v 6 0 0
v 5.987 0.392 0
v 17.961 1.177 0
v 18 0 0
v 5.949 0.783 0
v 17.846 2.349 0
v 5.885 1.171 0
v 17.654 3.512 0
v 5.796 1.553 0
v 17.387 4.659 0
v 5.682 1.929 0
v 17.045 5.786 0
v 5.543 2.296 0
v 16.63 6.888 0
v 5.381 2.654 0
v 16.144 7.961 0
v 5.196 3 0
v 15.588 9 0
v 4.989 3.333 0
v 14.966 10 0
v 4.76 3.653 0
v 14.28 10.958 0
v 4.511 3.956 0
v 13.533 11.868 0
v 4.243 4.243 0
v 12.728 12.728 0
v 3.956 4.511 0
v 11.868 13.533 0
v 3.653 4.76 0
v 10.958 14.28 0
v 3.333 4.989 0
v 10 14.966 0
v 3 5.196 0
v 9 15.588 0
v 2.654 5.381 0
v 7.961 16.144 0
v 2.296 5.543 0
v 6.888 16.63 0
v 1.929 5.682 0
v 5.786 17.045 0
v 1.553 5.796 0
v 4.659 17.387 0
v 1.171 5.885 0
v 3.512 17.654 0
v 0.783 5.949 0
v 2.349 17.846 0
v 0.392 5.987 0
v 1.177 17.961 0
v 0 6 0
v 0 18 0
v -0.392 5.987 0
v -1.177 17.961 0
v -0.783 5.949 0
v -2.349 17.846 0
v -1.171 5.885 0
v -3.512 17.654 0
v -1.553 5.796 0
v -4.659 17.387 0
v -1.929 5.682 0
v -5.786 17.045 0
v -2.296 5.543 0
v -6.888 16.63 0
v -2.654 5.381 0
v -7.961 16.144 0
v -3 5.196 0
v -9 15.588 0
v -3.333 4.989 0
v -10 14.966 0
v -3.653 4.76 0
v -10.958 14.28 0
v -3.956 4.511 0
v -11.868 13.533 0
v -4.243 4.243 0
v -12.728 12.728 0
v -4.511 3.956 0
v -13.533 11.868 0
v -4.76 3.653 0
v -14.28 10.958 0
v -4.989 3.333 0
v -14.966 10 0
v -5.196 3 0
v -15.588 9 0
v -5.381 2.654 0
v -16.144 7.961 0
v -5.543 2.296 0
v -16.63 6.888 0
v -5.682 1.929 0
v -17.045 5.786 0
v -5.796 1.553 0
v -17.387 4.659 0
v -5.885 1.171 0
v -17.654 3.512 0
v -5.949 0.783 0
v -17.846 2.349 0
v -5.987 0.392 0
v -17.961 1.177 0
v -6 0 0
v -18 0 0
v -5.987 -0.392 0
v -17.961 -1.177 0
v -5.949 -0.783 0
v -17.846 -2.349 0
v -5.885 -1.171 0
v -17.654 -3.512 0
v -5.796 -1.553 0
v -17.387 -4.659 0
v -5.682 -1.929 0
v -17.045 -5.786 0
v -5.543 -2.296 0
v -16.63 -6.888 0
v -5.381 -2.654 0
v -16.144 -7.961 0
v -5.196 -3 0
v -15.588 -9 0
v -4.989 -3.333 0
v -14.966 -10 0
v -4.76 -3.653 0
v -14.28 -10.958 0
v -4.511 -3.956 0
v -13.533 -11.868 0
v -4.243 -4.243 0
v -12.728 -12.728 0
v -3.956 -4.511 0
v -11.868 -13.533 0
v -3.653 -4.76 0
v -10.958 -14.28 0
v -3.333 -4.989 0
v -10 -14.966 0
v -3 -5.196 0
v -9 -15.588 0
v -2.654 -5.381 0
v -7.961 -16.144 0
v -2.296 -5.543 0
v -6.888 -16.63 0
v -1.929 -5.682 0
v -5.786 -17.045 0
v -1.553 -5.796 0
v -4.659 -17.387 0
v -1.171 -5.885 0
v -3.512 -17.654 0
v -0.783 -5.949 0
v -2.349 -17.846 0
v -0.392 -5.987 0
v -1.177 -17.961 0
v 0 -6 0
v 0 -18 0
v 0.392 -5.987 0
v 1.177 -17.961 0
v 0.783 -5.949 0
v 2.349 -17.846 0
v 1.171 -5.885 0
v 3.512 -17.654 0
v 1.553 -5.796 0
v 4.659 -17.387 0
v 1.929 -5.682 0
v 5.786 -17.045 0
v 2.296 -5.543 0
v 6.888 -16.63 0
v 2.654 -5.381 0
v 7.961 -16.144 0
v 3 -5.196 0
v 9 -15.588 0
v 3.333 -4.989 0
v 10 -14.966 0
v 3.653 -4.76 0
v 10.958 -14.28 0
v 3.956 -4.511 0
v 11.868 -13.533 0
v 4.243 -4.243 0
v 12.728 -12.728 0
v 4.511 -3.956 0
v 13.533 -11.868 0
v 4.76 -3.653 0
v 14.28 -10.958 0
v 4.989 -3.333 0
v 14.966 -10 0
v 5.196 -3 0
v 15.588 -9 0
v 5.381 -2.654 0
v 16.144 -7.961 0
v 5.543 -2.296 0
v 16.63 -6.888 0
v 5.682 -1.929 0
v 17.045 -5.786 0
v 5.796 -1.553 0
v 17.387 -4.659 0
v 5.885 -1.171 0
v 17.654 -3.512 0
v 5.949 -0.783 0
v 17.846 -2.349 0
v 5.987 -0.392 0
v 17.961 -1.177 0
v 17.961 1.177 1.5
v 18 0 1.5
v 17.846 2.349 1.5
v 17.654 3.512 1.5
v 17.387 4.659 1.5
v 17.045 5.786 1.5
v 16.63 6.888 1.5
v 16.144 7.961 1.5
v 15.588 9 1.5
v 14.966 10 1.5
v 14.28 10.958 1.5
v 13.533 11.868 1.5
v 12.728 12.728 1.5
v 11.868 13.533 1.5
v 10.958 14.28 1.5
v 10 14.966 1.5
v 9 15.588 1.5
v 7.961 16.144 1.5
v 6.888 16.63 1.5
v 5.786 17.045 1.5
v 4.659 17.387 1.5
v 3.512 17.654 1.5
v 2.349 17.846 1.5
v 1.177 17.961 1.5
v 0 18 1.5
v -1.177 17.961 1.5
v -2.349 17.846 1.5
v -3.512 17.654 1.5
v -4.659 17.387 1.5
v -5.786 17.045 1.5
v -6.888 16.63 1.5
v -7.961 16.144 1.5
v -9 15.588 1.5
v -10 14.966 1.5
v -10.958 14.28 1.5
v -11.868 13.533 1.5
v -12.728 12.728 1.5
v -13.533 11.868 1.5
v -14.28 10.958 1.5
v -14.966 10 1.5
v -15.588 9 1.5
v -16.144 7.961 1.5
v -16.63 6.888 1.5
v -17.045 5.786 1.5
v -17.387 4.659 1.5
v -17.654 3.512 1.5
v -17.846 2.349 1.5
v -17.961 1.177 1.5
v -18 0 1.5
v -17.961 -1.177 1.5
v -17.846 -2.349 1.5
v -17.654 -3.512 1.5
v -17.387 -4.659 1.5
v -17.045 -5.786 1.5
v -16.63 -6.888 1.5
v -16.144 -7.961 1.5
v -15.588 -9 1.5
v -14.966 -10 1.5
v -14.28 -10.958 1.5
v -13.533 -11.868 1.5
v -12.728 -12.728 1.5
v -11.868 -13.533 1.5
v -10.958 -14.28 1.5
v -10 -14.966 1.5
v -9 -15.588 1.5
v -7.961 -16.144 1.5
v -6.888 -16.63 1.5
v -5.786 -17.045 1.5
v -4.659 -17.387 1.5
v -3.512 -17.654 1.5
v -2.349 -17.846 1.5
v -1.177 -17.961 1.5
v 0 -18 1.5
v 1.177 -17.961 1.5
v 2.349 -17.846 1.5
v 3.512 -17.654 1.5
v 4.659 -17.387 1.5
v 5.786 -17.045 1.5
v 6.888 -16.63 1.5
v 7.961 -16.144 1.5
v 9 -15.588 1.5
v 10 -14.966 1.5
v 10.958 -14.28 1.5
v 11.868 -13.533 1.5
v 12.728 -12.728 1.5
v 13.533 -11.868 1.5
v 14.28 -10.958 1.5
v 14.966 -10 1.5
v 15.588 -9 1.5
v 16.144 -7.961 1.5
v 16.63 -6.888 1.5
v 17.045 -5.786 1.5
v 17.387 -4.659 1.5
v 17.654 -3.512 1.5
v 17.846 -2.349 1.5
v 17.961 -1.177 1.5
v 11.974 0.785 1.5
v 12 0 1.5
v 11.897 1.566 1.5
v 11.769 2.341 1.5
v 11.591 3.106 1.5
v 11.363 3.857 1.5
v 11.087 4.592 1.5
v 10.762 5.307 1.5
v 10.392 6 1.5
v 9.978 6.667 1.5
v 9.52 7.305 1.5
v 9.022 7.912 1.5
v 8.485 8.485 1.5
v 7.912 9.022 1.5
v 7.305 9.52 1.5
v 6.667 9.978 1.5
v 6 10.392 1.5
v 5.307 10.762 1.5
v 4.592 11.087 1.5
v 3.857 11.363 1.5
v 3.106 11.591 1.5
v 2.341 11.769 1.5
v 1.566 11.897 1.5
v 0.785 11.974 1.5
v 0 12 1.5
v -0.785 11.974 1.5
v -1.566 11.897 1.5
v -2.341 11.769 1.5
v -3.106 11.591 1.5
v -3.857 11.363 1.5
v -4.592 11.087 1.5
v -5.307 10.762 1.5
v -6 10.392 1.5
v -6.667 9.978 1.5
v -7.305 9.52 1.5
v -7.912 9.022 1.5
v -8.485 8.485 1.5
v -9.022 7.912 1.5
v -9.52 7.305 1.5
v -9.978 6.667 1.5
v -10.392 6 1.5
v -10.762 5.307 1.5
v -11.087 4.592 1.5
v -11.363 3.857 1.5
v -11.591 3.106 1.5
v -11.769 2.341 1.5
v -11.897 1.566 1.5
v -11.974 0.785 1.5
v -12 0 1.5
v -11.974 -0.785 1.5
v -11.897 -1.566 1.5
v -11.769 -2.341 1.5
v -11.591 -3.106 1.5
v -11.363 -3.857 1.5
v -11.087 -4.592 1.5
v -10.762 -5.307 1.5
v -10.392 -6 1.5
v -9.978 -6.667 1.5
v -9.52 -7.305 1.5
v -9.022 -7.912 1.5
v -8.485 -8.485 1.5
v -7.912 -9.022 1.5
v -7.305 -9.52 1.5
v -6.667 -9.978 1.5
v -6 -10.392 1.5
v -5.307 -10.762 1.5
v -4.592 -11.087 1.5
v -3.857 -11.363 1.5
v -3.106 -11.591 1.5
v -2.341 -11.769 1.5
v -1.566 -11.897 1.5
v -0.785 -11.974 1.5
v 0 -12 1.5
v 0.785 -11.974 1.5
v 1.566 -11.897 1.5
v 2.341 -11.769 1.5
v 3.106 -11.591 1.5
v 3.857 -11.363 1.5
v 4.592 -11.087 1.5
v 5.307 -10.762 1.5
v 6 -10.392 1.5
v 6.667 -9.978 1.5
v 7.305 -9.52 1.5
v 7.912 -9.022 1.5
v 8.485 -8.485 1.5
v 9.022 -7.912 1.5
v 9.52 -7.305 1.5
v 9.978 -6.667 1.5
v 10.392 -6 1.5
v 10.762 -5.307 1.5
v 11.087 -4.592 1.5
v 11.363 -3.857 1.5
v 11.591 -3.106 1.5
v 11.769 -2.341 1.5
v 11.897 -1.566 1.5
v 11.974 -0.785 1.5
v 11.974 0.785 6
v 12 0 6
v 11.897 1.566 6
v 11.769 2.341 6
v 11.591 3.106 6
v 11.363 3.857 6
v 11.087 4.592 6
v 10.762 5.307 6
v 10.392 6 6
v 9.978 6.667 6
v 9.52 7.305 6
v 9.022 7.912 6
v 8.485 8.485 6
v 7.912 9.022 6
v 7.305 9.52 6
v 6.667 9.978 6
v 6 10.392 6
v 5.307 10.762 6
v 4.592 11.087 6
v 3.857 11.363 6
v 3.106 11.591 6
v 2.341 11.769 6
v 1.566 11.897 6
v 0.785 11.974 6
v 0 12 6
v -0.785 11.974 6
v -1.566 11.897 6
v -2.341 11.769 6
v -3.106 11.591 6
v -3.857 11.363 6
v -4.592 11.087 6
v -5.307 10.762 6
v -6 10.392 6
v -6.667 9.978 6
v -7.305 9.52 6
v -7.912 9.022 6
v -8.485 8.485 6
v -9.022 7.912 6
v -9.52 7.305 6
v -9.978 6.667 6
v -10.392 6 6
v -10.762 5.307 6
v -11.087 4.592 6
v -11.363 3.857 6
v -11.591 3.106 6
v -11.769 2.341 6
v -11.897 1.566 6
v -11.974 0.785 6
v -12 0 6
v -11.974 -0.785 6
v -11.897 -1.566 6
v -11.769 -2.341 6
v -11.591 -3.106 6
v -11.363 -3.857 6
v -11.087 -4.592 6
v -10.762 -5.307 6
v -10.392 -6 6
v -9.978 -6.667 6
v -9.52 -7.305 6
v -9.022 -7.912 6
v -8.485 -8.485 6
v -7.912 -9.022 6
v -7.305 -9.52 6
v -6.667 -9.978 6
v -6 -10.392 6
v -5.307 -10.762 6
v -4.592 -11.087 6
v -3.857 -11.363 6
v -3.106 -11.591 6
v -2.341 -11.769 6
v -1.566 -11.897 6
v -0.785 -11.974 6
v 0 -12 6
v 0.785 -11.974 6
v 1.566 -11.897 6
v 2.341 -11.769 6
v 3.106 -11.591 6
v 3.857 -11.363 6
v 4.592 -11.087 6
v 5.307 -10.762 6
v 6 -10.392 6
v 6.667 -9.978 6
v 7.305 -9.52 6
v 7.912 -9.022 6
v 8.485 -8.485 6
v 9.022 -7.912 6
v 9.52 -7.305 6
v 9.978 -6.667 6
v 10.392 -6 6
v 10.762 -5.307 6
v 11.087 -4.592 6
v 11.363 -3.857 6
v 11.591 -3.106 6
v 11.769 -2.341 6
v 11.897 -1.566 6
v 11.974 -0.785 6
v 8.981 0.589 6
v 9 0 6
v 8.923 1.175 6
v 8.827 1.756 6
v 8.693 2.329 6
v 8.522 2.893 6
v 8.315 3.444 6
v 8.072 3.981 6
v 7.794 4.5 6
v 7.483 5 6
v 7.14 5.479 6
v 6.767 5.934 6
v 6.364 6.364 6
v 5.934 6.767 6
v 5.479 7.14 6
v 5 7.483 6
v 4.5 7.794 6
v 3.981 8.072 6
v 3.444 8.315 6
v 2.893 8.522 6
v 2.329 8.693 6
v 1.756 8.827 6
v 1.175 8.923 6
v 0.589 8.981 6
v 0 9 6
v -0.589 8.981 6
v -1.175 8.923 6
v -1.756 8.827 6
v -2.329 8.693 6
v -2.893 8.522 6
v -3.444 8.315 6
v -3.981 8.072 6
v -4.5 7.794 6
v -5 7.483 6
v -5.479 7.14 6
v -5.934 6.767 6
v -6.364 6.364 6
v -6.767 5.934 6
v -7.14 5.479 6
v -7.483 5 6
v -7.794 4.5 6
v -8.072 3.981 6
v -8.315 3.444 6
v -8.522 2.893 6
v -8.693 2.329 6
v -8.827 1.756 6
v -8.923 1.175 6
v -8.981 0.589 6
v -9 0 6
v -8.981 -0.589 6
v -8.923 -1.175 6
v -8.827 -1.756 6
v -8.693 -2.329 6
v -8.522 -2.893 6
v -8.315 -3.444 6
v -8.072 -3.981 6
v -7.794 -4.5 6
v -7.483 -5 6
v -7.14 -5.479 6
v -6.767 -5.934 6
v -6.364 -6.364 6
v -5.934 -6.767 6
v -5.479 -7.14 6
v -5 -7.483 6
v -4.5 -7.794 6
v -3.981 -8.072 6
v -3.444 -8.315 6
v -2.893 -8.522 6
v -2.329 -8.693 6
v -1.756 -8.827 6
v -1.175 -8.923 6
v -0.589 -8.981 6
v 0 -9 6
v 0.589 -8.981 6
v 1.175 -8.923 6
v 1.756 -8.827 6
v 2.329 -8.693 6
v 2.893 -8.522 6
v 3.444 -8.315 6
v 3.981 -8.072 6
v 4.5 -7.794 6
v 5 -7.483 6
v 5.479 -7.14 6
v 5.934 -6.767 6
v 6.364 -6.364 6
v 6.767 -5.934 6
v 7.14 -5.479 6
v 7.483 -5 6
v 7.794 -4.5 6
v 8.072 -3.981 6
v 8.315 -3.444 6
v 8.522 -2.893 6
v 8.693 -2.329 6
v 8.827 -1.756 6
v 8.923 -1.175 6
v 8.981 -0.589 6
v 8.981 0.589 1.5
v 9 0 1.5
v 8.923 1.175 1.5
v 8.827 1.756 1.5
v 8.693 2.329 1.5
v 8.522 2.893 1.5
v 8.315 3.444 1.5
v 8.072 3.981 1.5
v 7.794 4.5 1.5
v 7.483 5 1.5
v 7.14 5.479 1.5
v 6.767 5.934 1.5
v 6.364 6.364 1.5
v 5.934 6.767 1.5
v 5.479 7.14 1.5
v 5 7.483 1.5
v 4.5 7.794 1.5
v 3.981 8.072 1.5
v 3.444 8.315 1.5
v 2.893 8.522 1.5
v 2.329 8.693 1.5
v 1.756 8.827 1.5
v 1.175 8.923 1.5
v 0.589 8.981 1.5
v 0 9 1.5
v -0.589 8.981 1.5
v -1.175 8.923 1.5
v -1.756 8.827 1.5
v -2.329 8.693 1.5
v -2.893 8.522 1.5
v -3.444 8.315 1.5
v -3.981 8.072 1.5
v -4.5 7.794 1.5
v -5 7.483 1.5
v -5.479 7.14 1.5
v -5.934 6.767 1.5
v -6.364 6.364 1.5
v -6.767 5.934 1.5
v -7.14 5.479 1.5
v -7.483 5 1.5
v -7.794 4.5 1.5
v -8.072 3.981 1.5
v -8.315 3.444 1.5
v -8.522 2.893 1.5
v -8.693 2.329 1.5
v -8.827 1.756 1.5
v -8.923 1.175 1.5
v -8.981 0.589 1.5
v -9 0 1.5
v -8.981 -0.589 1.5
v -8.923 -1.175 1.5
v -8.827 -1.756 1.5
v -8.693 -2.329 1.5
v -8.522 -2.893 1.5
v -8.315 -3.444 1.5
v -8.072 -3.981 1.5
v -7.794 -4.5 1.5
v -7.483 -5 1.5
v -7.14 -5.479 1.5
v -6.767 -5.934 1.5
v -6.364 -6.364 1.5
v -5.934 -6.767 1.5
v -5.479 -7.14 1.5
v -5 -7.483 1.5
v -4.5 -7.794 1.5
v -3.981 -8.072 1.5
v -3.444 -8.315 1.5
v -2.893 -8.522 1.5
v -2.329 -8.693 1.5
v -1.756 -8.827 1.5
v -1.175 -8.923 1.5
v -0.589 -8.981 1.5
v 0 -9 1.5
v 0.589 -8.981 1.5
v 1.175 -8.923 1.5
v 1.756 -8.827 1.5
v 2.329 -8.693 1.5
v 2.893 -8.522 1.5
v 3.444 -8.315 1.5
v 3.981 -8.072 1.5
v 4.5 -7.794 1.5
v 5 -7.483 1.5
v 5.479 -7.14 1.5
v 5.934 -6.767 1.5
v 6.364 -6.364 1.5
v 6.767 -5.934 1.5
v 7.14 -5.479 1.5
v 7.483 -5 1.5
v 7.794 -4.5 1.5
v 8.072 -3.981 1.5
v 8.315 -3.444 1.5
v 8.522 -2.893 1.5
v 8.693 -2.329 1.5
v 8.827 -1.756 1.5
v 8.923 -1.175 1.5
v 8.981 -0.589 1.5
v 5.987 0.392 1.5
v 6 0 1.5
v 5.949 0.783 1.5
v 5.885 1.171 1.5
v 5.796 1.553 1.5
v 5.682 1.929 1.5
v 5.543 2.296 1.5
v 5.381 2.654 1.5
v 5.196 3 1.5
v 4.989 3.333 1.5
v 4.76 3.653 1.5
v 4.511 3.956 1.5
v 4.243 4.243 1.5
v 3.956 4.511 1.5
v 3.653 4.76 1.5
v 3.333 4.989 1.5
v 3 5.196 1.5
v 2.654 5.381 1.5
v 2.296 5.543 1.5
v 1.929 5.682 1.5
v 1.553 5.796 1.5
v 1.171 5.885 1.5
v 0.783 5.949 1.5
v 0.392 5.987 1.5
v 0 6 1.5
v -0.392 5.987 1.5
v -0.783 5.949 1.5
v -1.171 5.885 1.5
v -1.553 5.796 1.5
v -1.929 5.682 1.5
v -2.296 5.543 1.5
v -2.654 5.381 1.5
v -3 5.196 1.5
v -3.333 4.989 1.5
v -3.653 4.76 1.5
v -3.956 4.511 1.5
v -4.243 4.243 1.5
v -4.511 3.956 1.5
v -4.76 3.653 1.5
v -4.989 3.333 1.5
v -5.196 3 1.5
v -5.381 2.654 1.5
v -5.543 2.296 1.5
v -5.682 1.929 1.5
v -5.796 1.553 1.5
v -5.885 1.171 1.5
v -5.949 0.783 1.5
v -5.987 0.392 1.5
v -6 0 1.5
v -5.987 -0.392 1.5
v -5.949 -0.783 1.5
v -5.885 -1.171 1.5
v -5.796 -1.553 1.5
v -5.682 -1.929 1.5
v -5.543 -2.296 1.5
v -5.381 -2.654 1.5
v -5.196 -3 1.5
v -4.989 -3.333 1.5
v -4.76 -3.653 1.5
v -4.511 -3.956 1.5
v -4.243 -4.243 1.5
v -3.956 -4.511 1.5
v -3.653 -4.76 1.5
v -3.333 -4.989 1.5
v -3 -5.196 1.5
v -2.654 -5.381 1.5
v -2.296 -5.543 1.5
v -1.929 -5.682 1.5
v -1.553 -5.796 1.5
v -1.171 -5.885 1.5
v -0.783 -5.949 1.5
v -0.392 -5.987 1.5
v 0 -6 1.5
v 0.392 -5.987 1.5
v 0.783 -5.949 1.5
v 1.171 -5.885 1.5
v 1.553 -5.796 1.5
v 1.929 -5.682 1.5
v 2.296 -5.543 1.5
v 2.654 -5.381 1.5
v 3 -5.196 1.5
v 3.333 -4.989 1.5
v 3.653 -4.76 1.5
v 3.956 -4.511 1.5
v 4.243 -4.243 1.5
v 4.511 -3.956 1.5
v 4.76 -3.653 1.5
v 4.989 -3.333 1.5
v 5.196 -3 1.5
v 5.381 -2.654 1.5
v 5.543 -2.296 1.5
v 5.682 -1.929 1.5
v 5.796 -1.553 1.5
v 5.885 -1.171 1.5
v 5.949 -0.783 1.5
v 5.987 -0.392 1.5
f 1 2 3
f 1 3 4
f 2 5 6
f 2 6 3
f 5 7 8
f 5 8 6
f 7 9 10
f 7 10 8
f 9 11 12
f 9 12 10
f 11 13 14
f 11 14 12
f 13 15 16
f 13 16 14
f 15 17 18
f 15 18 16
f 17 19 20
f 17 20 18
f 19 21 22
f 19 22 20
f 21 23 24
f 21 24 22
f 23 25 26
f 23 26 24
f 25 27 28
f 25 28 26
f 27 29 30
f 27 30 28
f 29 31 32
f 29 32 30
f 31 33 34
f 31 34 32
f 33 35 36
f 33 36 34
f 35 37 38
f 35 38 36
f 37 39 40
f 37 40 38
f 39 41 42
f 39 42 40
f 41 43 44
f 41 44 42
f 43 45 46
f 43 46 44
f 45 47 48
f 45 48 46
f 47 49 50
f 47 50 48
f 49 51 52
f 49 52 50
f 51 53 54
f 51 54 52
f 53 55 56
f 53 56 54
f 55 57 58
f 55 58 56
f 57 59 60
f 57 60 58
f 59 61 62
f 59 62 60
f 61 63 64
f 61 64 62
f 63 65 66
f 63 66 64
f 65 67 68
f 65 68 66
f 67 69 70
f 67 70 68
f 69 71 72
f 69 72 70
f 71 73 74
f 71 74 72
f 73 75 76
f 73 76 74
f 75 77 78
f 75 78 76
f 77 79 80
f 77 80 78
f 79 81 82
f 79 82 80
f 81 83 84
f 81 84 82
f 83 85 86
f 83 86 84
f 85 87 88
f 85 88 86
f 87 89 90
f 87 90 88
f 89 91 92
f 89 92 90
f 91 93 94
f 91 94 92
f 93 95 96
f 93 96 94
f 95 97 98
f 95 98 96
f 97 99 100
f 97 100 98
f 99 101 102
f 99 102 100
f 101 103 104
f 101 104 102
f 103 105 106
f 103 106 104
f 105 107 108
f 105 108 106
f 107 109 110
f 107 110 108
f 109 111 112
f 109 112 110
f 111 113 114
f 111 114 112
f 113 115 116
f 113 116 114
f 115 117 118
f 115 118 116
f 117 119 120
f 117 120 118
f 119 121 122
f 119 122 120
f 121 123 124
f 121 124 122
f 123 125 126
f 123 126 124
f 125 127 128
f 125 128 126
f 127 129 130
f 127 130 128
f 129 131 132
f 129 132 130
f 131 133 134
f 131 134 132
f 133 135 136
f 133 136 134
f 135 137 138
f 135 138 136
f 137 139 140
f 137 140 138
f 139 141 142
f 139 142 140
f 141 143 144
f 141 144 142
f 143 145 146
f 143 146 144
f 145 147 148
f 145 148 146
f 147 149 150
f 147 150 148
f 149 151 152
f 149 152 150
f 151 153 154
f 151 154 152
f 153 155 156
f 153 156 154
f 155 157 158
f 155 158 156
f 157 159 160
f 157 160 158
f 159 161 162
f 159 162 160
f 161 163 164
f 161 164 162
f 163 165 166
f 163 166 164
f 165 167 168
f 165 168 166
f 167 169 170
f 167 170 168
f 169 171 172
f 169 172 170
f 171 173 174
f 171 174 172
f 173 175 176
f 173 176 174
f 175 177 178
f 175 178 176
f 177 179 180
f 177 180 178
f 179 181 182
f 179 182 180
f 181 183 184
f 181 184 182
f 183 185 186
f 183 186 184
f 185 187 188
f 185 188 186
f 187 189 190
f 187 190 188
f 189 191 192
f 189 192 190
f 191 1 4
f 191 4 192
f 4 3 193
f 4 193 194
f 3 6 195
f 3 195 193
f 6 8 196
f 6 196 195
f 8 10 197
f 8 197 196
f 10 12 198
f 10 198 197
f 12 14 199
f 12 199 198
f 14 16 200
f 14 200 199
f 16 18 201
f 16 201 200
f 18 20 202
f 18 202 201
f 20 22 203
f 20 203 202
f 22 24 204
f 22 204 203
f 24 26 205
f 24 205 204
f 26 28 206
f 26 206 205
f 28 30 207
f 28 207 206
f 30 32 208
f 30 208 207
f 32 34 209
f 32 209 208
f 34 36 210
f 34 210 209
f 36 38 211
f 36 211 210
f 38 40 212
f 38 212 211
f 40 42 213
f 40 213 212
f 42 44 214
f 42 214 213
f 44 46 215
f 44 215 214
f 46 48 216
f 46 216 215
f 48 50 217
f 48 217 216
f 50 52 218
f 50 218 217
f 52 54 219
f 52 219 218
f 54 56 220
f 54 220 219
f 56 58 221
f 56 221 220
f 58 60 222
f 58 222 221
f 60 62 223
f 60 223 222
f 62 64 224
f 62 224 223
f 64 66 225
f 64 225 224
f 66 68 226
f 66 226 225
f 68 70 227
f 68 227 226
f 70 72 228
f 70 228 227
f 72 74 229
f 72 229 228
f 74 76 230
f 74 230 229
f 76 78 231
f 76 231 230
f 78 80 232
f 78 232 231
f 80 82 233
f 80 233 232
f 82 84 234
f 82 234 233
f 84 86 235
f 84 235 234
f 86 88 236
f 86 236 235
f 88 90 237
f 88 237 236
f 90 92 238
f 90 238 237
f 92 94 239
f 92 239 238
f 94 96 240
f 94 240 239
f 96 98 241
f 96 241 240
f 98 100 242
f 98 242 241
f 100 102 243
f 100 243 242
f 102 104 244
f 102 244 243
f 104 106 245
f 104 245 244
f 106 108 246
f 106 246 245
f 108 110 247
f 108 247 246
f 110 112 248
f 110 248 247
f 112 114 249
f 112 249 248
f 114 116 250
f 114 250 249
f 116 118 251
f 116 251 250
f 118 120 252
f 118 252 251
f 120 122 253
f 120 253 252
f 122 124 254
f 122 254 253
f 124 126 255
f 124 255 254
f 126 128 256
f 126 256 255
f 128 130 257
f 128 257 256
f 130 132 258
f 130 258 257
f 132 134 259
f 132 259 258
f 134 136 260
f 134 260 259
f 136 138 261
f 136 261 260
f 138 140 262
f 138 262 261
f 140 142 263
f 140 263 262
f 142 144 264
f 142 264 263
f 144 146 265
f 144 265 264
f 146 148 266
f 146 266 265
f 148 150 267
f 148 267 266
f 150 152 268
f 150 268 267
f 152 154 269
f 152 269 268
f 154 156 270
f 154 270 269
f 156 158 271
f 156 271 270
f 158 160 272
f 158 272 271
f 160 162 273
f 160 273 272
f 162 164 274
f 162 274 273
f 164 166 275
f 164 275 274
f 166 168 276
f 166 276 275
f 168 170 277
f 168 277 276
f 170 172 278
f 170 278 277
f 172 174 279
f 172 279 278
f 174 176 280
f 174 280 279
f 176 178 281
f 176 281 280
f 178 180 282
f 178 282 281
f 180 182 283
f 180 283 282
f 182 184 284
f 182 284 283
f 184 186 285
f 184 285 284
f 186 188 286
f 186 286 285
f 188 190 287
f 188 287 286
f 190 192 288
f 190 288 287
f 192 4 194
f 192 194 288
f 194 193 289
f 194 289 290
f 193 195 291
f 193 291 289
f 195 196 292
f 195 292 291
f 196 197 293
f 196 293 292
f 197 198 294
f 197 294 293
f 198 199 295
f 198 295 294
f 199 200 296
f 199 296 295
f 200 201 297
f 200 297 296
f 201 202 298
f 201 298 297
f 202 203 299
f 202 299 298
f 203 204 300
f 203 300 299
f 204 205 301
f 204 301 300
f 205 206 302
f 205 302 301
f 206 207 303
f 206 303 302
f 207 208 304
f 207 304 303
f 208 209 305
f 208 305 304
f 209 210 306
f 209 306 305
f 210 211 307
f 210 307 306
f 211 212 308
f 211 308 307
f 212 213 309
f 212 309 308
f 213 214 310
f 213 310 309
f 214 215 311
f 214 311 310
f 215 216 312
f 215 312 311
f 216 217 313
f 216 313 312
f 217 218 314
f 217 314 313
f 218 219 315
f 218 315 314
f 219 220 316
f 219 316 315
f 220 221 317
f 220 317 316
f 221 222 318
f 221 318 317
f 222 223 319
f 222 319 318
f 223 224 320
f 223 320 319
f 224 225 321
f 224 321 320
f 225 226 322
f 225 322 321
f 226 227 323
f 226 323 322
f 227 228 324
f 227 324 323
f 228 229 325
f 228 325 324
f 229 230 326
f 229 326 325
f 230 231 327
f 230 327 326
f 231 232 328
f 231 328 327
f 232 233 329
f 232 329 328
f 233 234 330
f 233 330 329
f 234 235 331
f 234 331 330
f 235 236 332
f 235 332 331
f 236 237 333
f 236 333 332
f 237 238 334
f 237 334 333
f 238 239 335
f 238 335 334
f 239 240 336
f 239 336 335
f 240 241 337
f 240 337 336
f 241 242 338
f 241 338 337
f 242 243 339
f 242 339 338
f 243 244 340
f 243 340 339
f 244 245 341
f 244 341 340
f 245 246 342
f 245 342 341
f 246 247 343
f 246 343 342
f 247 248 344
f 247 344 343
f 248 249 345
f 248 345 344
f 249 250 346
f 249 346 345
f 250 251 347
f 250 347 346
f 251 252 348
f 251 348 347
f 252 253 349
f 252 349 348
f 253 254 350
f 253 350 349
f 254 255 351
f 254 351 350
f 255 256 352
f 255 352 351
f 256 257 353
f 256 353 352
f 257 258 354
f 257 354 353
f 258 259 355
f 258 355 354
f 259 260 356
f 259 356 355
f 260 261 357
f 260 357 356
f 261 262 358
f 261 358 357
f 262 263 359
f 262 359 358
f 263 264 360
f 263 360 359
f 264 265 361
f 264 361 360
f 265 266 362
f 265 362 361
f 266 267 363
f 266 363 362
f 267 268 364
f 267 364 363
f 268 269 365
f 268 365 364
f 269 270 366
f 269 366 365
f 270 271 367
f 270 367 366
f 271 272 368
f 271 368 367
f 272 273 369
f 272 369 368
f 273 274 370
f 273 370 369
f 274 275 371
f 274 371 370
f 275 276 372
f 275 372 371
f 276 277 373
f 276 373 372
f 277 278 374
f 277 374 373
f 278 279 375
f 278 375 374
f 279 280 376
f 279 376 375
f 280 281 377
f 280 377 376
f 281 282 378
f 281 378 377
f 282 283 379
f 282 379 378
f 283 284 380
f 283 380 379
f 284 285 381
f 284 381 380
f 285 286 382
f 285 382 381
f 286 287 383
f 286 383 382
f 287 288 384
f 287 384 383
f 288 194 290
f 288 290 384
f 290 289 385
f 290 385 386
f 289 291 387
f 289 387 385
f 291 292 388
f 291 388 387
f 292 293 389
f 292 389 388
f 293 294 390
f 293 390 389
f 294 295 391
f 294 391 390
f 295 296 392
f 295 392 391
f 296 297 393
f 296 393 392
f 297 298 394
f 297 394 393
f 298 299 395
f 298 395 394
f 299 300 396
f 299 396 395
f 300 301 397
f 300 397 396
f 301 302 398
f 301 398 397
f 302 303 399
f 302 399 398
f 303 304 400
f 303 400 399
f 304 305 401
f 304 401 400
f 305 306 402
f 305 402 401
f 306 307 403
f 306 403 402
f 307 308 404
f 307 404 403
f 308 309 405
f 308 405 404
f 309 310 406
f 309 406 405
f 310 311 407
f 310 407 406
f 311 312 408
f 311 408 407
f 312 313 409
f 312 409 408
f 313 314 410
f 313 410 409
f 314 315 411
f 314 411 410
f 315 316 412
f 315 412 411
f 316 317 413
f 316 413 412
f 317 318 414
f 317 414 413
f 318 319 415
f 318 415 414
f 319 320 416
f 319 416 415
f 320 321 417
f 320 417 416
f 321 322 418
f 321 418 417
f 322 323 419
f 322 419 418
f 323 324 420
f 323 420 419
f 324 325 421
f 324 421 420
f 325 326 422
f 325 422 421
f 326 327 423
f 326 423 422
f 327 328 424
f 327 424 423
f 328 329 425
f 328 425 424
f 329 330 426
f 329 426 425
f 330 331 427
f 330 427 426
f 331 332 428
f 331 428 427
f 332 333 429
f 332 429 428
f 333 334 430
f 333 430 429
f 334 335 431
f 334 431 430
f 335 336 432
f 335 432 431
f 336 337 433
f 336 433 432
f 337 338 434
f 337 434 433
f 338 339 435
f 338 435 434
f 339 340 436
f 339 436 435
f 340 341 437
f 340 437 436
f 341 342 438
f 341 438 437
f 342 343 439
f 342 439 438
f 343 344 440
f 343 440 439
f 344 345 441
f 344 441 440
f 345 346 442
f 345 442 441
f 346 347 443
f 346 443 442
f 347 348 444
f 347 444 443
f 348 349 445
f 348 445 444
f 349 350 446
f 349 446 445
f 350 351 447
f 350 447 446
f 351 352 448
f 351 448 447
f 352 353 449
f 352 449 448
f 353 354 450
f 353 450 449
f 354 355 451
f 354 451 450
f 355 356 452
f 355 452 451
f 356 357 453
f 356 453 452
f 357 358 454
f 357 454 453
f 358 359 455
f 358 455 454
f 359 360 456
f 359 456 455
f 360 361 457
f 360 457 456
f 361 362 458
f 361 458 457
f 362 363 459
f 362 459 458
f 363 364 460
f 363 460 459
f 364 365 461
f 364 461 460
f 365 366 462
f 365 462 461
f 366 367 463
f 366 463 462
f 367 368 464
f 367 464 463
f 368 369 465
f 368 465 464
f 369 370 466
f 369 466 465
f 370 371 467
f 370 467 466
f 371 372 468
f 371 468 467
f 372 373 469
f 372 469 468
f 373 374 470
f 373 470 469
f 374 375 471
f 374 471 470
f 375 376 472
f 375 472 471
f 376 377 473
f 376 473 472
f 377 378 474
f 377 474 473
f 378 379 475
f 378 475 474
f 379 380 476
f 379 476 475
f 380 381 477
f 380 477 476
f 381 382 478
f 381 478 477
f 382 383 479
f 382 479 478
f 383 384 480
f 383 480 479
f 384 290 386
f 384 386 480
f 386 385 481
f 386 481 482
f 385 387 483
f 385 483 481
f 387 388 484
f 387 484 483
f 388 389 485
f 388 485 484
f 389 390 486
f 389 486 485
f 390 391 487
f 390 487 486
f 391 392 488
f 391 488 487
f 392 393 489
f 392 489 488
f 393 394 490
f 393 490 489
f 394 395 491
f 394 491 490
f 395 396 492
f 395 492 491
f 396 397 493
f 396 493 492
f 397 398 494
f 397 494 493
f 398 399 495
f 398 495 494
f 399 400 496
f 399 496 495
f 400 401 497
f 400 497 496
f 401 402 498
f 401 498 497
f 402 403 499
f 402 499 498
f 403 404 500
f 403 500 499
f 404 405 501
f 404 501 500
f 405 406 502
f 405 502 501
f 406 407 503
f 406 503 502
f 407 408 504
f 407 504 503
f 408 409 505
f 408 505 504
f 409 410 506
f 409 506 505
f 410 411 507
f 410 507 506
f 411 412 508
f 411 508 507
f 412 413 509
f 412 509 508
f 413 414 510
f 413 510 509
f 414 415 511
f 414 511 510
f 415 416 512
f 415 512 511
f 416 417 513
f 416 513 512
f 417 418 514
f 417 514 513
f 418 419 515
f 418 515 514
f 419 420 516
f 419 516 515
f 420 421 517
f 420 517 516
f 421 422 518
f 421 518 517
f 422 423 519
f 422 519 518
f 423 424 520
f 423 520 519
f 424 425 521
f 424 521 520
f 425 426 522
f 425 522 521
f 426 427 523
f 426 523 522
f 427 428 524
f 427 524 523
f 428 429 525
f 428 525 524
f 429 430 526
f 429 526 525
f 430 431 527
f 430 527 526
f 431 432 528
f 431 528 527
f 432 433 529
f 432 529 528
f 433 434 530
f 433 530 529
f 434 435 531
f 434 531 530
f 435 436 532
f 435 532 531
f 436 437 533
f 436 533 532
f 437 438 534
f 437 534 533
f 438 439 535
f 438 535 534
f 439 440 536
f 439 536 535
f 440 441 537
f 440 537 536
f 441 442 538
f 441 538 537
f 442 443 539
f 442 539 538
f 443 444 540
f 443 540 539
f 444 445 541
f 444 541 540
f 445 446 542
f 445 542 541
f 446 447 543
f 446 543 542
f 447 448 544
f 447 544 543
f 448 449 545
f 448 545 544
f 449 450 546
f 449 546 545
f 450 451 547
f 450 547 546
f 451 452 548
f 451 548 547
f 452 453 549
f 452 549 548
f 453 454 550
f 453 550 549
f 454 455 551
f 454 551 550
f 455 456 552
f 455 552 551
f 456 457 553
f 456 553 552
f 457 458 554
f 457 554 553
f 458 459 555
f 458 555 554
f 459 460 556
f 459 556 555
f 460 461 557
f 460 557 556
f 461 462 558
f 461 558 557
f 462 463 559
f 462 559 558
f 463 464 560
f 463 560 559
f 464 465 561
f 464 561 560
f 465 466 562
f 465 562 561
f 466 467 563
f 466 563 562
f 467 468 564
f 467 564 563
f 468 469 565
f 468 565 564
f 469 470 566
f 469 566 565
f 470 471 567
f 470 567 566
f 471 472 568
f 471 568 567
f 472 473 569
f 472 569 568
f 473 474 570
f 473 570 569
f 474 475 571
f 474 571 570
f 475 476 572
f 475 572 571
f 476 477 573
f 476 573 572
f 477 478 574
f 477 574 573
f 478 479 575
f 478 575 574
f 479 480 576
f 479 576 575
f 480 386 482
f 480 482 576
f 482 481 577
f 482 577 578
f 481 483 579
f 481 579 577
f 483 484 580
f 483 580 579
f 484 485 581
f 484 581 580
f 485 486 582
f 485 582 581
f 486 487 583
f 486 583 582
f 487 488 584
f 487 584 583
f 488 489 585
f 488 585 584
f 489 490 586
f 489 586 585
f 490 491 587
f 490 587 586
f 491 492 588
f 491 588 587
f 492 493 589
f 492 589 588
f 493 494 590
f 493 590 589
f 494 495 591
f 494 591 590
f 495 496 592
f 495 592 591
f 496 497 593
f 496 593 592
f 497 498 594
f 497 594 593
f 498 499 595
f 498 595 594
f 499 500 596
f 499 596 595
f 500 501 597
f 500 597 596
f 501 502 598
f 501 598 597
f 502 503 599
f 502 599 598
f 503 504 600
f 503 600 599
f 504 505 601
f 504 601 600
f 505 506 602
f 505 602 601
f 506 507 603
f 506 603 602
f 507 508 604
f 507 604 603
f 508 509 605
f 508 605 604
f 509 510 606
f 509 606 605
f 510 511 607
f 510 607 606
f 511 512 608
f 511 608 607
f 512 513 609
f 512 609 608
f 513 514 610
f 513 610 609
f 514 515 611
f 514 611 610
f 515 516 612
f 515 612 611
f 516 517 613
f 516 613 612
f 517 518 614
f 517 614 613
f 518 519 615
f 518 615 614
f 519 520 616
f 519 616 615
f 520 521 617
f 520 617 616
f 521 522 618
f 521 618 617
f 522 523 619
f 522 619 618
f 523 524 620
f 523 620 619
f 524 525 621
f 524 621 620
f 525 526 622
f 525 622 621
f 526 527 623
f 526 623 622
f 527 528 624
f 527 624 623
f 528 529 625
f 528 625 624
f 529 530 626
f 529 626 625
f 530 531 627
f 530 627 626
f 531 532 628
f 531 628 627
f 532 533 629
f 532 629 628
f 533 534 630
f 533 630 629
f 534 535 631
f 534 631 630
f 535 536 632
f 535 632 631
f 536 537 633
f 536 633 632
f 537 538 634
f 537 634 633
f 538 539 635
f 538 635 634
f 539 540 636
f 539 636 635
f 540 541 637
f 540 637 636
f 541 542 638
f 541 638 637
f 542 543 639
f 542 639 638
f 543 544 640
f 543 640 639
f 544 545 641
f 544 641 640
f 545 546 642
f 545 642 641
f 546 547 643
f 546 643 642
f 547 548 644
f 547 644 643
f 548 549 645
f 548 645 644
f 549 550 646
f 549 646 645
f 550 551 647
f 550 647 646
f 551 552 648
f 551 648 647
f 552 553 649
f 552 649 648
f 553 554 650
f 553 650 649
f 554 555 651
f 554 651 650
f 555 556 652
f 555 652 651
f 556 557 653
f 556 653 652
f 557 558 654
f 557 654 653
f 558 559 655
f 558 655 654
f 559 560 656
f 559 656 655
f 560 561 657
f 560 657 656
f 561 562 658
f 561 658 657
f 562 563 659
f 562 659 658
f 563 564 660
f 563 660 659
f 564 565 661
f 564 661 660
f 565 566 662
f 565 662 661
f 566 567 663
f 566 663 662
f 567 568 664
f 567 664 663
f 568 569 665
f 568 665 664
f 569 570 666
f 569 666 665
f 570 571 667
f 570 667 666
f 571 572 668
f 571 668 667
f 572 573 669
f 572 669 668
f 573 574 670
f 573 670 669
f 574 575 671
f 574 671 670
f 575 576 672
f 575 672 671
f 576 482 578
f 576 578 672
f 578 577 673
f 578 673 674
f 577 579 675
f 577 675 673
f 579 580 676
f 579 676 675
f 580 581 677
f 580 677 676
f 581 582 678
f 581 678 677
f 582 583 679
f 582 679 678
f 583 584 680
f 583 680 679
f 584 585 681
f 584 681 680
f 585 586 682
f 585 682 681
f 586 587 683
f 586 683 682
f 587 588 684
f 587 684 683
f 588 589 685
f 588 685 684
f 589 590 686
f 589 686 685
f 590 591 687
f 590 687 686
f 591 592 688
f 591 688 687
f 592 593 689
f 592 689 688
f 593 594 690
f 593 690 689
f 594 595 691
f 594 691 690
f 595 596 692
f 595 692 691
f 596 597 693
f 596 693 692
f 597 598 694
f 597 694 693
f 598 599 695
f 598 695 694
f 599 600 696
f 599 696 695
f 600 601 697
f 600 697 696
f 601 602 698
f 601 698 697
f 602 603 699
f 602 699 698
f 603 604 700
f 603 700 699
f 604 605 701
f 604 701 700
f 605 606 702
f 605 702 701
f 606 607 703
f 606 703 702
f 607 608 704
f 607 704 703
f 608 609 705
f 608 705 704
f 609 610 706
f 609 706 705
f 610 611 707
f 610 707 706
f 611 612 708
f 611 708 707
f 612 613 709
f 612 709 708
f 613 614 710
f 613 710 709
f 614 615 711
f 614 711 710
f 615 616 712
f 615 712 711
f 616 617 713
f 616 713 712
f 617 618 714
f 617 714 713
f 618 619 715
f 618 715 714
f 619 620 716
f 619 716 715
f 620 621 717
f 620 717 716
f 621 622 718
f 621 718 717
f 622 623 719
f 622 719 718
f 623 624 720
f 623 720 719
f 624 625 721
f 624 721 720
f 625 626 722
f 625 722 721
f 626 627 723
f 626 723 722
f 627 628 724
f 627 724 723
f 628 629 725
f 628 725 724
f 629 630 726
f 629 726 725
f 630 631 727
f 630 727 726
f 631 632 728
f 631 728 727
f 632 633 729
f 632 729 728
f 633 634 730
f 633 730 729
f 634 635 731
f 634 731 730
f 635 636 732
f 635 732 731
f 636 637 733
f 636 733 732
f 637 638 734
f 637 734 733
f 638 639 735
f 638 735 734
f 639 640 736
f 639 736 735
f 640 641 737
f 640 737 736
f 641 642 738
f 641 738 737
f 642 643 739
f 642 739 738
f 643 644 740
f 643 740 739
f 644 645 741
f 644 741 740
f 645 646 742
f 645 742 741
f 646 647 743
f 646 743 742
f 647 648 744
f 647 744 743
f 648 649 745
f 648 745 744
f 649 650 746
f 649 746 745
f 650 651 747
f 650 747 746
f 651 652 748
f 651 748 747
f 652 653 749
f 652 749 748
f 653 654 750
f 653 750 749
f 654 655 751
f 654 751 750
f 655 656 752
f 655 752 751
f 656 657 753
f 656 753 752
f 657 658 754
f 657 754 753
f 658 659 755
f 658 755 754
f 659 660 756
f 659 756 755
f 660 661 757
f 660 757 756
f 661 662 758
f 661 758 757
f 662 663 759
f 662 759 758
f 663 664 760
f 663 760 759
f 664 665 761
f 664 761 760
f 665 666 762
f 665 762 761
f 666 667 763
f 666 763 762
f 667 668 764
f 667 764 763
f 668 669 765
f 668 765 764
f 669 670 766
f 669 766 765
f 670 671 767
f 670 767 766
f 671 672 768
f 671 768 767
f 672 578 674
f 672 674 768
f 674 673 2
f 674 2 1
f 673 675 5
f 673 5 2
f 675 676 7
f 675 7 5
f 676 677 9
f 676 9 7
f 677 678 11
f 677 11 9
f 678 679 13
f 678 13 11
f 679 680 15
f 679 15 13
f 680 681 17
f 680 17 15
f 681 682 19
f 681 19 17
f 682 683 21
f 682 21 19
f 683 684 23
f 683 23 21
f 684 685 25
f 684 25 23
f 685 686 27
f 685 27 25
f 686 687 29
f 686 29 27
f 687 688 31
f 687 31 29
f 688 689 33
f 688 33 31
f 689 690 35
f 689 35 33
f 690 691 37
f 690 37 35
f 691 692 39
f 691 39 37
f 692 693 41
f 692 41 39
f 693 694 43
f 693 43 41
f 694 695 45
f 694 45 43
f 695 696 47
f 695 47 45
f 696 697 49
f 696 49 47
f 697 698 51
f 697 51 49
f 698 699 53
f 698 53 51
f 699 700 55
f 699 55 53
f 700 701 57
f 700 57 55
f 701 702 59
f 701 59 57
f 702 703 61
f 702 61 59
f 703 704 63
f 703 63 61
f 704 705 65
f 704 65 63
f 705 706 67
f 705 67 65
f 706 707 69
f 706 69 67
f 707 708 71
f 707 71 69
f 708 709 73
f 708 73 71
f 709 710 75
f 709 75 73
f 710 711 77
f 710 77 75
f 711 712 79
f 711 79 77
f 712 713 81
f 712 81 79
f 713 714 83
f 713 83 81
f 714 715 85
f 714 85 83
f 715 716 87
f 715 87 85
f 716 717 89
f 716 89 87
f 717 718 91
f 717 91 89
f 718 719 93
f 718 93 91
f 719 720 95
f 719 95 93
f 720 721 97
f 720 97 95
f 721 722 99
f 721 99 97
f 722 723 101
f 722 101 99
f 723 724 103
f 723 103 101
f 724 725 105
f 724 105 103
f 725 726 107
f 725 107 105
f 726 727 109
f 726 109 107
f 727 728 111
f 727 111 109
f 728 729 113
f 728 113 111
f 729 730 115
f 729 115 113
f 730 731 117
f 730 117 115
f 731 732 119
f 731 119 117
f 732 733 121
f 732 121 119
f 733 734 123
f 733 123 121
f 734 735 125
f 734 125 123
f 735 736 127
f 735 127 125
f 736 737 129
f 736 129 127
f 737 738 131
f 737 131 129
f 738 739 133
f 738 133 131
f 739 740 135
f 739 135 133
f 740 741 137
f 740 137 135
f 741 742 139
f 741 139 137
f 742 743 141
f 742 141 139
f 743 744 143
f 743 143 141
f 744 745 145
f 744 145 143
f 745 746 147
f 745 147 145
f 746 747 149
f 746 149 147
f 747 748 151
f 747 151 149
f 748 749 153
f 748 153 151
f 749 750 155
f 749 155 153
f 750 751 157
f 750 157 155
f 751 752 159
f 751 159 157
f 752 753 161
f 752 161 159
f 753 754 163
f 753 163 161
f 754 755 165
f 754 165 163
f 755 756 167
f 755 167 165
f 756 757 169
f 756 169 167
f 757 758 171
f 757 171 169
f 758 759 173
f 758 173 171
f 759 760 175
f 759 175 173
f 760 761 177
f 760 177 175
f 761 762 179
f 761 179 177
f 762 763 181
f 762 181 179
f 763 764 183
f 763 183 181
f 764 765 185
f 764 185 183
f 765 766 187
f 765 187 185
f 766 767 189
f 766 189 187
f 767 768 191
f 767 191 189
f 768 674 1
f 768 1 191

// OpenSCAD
// Original MechIntel educational model. CC0-1.0. Units: mm.
// Not a standardized or load-rated component.
$fn=96;
// Section points: [radius, height], mm. Edit to change the profile.
section=[[6, 0], [18, 0], [18, 1.5], [12, 1.5], [12, 6], [9, 6], [9, 1.5], [6, 1.5]];
rotate_extrude($fn=96) polygon(points=section);
